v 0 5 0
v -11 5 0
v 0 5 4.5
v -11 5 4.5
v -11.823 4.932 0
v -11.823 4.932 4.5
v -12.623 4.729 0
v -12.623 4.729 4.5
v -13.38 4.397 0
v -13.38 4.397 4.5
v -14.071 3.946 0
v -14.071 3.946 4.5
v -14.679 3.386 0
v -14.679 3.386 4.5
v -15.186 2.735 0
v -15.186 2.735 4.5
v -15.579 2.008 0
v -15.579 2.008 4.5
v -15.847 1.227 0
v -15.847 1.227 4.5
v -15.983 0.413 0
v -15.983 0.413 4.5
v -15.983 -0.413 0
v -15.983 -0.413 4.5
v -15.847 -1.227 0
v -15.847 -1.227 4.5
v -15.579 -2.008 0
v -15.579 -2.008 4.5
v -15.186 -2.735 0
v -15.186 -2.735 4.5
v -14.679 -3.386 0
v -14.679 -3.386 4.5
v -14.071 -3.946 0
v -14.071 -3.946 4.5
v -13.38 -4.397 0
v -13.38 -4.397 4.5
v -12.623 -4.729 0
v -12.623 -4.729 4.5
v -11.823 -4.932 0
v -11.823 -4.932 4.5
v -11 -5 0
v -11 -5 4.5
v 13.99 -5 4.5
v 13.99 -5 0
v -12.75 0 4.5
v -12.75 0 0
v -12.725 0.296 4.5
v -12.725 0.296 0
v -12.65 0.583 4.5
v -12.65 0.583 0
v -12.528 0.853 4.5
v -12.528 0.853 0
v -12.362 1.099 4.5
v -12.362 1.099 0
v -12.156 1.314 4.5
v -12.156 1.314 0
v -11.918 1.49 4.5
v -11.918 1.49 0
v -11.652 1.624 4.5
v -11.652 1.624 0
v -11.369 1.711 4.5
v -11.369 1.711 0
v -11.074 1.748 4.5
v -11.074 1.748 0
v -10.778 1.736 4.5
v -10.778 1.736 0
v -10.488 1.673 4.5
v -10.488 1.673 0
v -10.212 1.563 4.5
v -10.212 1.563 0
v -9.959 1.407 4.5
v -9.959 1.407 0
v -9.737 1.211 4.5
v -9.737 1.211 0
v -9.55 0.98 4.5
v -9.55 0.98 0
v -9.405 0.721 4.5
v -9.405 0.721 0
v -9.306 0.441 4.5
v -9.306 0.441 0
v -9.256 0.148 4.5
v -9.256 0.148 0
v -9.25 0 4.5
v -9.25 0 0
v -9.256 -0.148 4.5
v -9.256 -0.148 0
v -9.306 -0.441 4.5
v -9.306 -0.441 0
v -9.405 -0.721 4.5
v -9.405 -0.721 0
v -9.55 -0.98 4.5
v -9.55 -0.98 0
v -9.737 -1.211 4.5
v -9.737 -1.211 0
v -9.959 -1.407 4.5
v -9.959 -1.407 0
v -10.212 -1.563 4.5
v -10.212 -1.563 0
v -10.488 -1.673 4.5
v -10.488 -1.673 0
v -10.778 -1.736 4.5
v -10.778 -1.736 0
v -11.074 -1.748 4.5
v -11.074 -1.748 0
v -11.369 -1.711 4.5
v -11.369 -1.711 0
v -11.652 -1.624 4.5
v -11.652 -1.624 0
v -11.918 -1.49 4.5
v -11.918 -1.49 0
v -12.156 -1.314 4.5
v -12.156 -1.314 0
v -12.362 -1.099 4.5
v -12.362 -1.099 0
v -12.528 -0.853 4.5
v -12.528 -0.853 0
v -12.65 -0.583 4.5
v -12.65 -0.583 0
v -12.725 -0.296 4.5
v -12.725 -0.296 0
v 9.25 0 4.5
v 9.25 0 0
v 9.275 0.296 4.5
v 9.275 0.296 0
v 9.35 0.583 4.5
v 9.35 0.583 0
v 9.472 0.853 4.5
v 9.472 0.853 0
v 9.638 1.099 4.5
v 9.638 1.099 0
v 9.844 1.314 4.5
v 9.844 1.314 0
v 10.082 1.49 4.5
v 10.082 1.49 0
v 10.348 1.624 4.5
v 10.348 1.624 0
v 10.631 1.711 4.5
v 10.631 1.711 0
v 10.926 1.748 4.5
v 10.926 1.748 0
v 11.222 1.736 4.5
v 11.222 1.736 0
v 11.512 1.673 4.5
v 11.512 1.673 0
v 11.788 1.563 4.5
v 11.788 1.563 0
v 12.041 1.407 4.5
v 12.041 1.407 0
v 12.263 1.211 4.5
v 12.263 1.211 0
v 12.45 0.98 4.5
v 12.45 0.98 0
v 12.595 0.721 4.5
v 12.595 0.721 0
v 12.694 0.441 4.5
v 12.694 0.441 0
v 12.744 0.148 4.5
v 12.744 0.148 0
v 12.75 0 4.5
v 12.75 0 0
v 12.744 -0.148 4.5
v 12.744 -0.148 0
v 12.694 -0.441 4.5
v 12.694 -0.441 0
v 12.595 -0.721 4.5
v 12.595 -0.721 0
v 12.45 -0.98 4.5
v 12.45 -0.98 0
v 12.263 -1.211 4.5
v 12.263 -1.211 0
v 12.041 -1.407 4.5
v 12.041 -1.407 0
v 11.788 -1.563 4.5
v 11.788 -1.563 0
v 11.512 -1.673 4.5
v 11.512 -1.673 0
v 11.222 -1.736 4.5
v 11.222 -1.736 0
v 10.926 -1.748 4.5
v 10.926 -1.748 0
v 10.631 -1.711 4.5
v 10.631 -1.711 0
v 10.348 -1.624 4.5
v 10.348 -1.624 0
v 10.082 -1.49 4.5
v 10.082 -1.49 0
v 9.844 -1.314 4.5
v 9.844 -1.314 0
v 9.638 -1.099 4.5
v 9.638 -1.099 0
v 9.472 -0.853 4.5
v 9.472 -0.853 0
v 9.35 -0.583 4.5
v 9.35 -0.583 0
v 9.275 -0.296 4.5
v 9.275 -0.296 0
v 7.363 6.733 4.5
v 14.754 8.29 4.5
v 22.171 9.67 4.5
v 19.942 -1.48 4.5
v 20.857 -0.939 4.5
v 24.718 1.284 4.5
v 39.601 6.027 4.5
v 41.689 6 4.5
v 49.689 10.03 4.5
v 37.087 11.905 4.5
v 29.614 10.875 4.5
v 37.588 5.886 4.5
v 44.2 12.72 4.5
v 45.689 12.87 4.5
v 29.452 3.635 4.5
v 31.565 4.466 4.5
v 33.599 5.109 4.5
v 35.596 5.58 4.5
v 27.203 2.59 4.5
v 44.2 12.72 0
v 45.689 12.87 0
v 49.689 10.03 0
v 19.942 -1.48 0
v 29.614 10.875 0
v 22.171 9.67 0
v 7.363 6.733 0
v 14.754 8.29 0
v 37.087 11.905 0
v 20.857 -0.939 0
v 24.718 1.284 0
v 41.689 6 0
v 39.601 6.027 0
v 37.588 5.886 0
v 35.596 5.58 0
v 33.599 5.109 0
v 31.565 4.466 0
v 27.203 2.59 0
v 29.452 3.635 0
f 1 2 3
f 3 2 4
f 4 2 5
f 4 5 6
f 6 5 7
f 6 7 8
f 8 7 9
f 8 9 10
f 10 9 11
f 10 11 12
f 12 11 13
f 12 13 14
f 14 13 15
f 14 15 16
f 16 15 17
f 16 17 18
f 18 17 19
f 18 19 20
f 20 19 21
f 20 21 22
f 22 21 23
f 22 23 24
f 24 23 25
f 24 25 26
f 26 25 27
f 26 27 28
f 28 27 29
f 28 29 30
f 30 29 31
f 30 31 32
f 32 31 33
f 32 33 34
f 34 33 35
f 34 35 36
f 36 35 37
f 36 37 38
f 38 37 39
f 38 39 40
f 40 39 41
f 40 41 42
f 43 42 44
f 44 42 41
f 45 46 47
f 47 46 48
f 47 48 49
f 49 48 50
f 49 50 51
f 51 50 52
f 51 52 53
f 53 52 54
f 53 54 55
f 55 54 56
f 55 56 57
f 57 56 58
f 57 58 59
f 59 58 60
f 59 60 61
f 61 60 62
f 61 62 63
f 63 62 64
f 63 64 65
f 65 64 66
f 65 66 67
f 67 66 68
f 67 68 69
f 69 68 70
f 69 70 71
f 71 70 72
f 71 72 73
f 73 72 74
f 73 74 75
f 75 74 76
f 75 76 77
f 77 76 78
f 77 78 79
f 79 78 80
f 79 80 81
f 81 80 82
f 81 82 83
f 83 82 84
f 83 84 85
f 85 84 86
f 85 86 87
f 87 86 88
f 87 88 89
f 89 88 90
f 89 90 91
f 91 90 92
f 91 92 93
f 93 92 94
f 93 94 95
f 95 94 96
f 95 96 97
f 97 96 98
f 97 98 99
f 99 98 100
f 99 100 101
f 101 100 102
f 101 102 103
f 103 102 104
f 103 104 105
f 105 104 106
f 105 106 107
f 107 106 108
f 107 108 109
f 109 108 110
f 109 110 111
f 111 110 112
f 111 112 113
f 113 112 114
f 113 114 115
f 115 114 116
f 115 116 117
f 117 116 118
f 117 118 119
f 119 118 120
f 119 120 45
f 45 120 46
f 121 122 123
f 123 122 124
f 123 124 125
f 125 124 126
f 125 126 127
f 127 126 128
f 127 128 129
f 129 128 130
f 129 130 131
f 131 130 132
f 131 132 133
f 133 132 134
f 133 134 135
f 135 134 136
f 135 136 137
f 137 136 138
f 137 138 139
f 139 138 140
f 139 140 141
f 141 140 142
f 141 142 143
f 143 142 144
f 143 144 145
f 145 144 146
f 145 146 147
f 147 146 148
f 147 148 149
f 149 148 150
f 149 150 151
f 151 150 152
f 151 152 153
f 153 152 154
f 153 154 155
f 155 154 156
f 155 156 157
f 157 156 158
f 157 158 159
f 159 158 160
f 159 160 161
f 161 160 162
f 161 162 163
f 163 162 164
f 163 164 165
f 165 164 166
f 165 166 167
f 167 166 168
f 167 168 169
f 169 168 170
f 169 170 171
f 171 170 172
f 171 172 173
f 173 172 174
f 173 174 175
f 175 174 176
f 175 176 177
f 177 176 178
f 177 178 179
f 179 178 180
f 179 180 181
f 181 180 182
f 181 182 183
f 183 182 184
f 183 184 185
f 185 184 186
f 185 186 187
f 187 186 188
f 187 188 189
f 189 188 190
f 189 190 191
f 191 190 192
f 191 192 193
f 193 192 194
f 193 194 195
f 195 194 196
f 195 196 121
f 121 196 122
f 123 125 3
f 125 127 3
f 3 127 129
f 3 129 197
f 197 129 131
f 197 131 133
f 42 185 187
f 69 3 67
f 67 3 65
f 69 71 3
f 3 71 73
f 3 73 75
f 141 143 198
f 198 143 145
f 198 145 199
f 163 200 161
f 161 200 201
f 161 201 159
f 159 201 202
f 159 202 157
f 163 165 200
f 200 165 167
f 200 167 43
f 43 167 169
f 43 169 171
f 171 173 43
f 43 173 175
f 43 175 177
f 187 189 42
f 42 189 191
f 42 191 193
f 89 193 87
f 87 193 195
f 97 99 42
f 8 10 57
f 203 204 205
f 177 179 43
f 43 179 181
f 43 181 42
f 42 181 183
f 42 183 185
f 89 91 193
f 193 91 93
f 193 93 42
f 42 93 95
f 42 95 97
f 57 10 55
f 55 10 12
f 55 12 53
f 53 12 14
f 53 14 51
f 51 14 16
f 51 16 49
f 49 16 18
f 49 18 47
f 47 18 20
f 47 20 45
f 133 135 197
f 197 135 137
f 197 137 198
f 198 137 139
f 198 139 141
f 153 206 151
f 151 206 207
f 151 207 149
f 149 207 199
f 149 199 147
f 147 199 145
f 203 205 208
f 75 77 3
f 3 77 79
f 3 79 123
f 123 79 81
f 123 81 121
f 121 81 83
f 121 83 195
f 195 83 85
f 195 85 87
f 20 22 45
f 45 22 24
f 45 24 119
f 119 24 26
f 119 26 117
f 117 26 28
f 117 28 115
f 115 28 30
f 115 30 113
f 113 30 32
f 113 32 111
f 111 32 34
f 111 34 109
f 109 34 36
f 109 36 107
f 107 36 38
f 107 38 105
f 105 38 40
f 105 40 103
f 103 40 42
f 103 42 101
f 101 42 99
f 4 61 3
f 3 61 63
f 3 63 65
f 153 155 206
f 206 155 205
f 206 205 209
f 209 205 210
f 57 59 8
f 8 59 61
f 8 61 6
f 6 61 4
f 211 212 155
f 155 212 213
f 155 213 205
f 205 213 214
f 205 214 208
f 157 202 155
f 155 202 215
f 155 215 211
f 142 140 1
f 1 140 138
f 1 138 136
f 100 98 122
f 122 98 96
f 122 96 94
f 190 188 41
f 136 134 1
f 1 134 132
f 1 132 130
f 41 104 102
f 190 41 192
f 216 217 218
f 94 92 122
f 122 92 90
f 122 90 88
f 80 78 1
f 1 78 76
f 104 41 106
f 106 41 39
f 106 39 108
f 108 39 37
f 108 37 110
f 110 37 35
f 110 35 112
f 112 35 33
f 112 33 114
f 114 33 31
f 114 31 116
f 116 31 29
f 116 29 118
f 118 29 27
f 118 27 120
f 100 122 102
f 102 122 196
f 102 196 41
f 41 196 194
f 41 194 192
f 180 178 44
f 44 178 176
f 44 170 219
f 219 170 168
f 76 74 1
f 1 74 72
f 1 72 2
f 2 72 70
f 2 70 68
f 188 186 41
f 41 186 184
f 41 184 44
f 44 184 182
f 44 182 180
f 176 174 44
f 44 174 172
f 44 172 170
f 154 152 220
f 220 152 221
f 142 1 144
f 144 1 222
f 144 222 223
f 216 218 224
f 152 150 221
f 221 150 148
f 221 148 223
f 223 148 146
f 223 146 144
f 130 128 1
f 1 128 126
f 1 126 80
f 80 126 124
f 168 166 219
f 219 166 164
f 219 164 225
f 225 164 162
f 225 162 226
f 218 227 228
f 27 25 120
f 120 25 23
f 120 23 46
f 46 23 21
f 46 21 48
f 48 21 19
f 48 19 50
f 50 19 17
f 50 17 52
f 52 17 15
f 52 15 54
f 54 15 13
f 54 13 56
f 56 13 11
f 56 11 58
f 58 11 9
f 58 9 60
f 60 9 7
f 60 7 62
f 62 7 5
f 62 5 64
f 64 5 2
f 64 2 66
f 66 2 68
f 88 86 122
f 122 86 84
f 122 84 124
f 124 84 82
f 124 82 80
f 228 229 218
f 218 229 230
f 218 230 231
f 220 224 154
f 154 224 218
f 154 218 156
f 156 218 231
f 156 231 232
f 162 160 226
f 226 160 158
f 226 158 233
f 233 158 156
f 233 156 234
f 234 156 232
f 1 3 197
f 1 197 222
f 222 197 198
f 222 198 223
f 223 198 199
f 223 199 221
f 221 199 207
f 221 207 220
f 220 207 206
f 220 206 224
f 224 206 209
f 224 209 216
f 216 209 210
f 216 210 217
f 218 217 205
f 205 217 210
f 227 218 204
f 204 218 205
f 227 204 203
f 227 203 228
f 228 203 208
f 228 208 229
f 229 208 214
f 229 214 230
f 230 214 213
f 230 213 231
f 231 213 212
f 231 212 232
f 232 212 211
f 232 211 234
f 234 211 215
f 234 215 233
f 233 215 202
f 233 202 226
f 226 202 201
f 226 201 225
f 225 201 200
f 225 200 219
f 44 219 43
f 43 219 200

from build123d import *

# Parameters (mm, degrees)
SKETCH2_R           = 5
SKETCH2_R_2         = 1.75
BOSS_EXTRUDE1_DEPTH = 4.5
BOSS_EXTRUDE2_START = -4.5
BOSS_EXTRUDE2_DEPTH = 4.5


with BuildPart() as part:
    # Sketch2 → Boss-Extrude1 (new body)
    # profile 1 of 3: a face of its own
    with BuildSketch(Plane.XY):
        with Locations((-11, 0)):
            Circle(SKETCH2_R)
        with Locations((-11, 0)):
            Circle(SKETCH2_R_2, mode=Mode.SUBTRACT)
    # profile 2 of 3: a face of its own
    with BuildSketch(Plane.XY):
        with Locations((11, 0)):
            Circle(SKETCH2_R)
        with Locations((11, 0)):
            Circle(SKETCH2_R_2, mode=Mode.SUBTRACT)
    # profile 3 of 3: a face of its own
    with BuildSketch(Plane.XY):
        with BuildLine():
            Line((11.000000016, 5), (-11, 5))
            ThreePointArc((-11, 5), (-7.464466094, 3.535533906), (-6, 0))
            ThreePointArc((-6, 0), (-7.464466094, -3.535533906), (-11, -5))
            Line((-11, -5), (11, -5))
            ThreePointArc((11, -5), (6, 8e-09), (11.000000016, 5))
        make_face()
    extrude(amount=BOSS_EXTRUDE1_DEPTH)

    # Sketch3 → Boss-Extrude2 (add)
    with BuildSketch(Plane.XY.offset(4.5).offset(BOSS_EXTRUDE2_START)):
        with BuildLine():
            Line((49.688970331, 10.03), (45.688970331, 12.87))
            add(Edge.make_bspline(
                [(0, 5), (22.564264041, 10.590261298), (45.688970331, 12.87)],
                knots=[0, 0, 0, 1, 1, 1], degree=2))
            Line((0, 5), (11, 5))
            ThreePointArc((11, 5), (16, 0), (11, -5))
            Line((11, -5), (13.99, -5))
            Line((13.99, -5), (19.942130619, -1.48))
            add(Edge.make_bspline(
                [(41.688970331, 6), (33.285520943, 6.459476071), (26.91839773, 2.645658828), (19.942130619, -1.48)],
                knots=[0, 0, 0, 0, 1, 1, 1, 1], degree=3))
            Line((41.688970331, 6), (49.688970331, 10.03))
        make_face()
    extrude(amount=BOSS_EXTRUDE2_DEPTH)


solid = part.part
